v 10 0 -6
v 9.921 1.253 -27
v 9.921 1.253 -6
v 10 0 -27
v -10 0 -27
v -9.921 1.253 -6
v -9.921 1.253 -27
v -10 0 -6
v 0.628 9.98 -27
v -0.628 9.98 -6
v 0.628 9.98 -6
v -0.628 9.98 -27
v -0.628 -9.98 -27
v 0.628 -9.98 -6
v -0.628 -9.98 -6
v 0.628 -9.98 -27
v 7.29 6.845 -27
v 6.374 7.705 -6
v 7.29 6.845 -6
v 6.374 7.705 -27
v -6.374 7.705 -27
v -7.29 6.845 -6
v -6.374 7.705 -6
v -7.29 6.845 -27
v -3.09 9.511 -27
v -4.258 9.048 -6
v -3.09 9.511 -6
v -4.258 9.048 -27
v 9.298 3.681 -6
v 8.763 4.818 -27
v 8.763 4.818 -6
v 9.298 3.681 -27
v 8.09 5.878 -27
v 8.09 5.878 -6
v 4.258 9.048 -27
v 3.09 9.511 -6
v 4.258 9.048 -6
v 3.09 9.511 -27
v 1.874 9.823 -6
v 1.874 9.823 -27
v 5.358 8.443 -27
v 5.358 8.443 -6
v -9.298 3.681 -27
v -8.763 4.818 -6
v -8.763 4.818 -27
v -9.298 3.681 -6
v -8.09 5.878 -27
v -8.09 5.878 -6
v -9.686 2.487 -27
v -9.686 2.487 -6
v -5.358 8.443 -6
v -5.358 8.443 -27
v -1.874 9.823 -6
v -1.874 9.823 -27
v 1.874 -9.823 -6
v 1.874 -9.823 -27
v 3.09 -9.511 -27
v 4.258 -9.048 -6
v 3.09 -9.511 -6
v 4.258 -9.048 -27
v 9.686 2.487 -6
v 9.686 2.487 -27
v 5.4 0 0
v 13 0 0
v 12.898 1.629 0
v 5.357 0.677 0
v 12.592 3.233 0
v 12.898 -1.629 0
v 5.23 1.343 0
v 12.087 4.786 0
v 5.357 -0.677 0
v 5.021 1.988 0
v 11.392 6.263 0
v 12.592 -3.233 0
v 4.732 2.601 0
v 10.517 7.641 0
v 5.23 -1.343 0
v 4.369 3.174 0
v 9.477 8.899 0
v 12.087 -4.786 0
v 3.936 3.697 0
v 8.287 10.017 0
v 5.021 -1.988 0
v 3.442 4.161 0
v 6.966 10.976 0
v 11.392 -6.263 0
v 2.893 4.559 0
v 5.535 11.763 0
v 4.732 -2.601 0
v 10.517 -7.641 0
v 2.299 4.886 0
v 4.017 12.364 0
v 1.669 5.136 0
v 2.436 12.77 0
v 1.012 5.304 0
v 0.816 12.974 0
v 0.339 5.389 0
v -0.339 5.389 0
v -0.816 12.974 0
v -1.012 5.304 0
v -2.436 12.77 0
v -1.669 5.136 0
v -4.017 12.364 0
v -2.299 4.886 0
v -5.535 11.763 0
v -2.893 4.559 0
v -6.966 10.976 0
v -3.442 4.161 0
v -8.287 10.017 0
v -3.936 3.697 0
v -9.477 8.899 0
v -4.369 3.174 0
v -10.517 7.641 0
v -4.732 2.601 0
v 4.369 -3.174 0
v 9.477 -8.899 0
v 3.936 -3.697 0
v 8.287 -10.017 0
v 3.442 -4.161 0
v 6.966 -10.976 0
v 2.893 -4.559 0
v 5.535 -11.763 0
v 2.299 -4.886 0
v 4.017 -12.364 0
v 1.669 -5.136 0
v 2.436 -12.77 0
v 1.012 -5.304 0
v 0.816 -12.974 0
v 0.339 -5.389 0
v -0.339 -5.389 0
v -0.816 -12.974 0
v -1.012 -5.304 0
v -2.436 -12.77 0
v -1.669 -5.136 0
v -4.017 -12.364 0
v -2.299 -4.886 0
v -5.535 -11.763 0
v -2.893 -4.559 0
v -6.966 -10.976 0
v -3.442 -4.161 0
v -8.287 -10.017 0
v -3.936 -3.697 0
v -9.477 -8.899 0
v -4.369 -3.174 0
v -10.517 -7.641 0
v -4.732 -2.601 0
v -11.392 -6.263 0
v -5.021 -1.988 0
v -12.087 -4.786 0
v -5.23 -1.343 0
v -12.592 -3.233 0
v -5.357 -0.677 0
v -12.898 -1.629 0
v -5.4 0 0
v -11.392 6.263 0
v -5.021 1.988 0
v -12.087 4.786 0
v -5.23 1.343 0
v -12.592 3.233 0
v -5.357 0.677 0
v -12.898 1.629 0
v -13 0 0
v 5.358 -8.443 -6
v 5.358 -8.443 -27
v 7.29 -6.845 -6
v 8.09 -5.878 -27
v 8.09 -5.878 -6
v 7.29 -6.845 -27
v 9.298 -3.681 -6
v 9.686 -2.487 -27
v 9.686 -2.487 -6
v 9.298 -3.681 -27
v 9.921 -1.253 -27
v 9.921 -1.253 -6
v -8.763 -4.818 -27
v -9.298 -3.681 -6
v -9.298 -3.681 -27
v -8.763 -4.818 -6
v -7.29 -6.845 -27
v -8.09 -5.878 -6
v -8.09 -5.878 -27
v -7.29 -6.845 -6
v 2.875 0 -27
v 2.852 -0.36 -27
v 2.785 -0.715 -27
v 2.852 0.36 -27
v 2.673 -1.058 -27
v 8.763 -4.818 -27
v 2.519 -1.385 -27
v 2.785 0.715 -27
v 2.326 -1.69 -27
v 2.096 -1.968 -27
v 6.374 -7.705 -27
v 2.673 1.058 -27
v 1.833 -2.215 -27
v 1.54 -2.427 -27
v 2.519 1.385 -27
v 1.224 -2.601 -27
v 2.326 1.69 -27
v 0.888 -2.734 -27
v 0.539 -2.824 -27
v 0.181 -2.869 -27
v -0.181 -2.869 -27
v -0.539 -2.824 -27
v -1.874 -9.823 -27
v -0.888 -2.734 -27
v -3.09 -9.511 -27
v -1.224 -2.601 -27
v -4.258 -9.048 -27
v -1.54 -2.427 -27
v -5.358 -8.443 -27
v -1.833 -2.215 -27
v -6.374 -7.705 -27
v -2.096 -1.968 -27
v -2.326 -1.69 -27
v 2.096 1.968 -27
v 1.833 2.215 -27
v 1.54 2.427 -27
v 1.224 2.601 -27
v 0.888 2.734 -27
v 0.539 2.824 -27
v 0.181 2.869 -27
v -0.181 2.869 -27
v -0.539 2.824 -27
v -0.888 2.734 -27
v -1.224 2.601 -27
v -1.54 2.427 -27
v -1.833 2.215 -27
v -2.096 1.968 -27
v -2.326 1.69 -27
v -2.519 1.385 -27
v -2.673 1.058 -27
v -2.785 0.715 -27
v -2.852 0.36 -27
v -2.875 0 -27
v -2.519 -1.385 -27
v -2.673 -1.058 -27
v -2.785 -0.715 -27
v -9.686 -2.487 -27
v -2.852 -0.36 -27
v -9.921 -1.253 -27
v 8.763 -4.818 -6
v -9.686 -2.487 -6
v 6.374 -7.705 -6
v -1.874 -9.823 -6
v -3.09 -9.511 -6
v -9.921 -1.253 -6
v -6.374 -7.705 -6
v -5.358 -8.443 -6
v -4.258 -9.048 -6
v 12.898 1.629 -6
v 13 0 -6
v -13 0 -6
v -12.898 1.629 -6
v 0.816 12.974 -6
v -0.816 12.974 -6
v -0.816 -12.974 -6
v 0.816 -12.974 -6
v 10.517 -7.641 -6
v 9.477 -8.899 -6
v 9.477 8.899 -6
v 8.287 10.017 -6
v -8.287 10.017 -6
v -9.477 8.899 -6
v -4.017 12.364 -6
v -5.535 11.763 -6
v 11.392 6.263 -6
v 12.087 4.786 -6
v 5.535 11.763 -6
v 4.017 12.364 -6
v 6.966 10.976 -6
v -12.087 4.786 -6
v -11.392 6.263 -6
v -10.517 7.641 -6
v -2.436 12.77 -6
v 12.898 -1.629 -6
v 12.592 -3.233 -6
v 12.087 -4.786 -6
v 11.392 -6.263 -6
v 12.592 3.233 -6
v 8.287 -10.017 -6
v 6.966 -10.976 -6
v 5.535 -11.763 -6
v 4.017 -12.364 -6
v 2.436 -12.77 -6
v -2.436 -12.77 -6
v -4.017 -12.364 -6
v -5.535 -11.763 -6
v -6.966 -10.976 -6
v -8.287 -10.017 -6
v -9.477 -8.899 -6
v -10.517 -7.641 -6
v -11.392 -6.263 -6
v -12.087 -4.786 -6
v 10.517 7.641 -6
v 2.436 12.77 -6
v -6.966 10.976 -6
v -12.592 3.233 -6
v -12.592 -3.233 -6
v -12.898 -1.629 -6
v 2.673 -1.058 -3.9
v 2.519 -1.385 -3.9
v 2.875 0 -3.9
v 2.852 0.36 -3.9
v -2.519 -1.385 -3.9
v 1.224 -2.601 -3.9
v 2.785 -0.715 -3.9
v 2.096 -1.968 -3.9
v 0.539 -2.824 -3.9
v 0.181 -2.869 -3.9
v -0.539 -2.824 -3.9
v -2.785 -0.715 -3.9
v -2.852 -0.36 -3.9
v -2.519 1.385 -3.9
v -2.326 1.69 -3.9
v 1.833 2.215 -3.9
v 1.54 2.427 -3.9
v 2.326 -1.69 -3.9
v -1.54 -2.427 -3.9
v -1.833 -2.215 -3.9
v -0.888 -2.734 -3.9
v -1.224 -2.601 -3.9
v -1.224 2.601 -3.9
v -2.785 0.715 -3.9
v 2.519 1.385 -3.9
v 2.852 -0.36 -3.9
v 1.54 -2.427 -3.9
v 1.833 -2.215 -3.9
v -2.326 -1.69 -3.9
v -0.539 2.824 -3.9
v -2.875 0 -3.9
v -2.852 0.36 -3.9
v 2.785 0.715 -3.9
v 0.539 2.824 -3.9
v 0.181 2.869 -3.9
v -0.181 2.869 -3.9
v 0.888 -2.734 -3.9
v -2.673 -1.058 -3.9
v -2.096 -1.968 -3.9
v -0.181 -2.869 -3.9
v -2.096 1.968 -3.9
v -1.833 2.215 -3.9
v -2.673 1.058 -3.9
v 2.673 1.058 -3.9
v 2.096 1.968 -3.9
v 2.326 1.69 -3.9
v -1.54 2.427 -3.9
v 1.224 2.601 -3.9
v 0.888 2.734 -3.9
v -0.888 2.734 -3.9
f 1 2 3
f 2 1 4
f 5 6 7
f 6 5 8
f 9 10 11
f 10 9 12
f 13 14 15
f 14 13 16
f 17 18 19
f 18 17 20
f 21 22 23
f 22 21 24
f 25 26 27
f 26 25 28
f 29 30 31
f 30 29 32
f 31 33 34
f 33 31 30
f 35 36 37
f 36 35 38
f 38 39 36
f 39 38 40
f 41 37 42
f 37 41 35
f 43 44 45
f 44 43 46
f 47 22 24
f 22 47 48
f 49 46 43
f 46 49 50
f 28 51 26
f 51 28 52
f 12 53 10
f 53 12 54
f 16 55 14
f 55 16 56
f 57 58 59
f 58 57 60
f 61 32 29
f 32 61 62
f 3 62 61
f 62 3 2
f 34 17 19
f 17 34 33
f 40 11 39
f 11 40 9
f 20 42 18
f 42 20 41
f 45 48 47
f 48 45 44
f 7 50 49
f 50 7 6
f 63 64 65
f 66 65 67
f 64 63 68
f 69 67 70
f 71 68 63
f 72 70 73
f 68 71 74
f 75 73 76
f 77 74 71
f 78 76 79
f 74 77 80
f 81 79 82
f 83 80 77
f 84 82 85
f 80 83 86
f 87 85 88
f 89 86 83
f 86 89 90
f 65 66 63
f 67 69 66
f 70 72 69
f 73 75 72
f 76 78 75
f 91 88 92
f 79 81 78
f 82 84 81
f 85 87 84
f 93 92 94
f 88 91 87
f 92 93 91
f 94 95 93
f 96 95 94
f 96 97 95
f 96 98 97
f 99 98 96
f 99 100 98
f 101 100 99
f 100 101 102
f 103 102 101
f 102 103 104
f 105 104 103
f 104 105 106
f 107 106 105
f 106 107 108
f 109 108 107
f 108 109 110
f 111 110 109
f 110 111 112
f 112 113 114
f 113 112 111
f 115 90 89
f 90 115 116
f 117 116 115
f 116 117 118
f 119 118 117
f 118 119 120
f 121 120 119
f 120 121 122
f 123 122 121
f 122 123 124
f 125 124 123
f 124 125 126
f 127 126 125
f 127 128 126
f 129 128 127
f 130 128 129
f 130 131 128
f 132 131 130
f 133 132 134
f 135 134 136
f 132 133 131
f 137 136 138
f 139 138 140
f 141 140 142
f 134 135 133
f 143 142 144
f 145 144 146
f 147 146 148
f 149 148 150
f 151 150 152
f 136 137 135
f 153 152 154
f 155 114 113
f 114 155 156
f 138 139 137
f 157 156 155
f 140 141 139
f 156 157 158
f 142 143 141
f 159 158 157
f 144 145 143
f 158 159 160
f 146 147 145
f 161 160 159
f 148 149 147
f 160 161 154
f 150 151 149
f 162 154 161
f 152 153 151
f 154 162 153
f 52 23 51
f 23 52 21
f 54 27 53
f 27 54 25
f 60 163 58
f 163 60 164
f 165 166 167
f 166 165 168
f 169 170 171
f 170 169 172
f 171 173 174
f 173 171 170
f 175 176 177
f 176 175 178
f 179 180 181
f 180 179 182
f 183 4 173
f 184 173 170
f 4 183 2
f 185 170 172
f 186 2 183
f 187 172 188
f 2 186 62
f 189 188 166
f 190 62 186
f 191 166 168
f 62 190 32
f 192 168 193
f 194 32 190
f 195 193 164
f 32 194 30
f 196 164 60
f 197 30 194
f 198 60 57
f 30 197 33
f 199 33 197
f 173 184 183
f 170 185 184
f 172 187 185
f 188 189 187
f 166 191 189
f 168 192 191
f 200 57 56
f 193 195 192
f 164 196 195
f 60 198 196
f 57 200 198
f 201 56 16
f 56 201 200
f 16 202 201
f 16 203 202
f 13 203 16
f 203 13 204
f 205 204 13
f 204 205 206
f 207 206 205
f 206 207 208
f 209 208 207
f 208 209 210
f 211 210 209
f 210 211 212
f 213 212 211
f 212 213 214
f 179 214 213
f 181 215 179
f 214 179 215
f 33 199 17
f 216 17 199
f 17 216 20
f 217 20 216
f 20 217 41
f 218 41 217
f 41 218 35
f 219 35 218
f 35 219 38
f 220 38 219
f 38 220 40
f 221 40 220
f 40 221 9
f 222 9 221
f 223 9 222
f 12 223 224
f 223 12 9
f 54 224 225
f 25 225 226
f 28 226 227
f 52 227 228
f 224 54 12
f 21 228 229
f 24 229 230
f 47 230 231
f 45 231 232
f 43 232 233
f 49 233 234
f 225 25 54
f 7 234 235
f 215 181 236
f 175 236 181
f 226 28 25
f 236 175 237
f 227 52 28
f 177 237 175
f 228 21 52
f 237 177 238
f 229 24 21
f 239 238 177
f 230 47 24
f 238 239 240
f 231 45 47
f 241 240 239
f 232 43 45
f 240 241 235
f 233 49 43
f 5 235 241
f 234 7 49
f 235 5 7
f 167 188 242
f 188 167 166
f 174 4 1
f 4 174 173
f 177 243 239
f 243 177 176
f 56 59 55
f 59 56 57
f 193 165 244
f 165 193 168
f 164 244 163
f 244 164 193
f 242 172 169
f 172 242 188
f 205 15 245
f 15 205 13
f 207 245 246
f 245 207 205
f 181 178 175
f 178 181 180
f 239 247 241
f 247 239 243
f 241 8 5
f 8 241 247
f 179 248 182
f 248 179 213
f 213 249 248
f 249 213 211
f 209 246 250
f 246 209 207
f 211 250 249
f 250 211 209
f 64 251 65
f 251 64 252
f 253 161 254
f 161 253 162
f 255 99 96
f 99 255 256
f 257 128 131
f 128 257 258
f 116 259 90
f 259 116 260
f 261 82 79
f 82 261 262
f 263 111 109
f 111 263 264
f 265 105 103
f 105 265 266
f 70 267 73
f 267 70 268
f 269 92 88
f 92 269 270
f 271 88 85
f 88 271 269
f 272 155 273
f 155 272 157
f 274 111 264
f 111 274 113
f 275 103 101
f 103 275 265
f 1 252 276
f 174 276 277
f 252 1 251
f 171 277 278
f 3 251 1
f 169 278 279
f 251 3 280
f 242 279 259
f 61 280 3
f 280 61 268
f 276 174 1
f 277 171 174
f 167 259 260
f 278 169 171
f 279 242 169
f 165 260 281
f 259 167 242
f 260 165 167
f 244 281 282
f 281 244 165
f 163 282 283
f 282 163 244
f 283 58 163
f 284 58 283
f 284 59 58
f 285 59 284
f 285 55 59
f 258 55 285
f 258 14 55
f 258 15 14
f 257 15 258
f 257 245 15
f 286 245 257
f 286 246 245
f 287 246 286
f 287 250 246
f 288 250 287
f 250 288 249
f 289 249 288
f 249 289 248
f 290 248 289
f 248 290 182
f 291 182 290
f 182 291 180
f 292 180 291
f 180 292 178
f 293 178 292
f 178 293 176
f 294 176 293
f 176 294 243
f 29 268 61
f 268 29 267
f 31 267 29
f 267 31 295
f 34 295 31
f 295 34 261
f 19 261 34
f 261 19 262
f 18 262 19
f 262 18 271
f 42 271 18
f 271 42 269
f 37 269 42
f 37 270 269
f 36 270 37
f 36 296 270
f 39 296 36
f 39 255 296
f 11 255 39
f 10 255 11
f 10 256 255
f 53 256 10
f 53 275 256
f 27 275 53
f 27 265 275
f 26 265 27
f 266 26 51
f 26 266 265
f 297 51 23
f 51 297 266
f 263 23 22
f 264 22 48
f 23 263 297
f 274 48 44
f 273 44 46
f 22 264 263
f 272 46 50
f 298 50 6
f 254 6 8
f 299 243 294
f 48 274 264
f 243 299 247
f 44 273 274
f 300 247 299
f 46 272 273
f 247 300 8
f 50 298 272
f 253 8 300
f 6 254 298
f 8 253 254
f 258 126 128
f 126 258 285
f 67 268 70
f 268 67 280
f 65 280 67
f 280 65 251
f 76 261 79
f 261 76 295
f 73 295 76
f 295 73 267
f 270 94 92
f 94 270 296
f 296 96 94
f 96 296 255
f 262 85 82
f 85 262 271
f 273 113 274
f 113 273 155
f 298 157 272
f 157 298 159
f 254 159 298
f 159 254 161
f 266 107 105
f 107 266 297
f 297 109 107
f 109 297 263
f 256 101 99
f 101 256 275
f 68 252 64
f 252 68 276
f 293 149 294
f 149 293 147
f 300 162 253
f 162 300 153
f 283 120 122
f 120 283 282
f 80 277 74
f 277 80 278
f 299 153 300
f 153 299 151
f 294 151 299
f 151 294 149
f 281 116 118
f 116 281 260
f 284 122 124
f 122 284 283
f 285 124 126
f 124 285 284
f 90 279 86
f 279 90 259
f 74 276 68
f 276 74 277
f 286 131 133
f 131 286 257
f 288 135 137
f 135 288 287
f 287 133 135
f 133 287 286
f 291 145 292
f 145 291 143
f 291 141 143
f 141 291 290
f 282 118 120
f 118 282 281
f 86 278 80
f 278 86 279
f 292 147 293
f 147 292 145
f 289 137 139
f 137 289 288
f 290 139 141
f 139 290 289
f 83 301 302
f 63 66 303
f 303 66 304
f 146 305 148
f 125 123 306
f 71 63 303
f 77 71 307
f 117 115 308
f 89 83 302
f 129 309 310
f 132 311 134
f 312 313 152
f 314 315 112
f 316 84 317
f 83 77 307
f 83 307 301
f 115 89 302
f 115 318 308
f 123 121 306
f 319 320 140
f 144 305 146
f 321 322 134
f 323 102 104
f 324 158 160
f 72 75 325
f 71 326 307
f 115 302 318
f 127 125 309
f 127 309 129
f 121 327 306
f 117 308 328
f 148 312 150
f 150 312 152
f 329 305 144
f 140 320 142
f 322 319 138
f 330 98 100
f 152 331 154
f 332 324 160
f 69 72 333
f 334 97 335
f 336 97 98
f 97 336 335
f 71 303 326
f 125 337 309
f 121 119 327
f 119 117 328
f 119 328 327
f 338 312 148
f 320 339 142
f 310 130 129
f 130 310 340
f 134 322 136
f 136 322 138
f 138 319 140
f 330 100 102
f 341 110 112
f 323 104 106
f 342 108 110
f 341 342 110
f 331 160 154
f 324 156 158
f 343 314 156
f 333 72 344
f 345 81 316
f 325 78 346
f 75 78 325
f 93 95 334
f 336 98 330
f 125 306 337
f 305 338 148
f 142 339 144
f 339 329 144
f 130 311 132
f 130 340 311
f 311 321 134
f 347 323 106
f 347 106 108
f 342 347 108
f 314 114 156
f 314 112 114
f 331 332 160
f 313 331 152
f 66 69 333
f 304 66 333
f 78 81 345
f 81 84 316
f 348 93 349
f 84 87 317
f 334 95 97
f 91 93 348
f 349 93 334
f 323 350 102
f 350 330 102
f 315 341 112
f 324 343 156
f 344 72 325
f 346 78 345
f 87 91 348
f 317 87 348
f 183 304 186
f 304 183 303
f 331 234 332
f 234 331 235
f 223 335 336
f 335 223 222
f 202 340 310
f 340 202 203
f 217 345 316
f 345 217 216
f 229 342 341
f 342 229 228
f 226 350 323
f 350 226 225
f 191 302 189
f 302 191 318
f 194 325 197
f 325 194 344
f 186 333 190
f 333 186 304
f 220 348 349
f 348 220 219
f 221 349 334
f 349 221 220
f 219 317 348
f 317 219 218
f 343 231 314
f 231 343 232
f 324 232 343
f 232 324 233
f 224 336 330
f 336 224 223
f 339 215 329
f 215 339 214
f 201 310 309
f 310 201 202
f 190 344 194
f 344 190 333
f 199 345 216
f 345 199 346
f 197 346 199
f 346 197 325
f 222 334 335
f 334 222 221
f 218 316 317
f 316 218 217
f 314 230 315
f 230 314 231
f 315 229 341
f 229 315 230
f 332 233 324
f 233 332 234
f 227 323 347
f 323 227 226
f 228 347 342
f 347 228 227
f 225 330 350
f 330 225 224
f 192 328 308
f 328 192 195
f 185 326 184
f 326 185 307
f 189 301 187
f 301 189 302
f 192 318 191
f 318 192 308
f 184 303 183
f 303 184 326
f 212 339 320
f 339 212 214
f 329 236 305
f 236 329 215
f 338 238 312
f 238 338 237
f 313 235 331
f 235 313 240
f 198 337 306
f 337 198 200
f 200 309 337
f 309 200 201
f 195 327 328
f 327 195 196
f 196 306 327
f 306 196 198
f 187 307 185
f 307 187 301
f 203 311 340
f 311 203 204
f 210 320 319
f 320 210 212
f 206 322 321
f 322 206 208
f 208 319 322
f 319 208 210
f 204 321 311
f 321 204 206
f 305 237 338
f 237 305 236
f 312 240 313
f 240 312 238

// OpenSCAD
$fn = 50;


difference() {
	union() {
		translate(v = [0, 0, -27.0000000000]) {
			cylinder(h = 27, r = 10.0000000000);
		}
		translate(v = [0, 0, -6.0000000000]) {
			cylinder(h = 6, r = 13.0000000000);
		}
	}
	union() {
		translate(v = [0, 0, 0]) {
			rotate(a = [0, 0, 0]) {
				difference() {
					union() {
						#translate(v = [0, 0, -27.0000000000]) {
							cylinder(h = 27, r = 2.6000000000);
						}
						#translate(v = [0, 0, -3.9000000000]) {
							cylinder(h = 3.9000000000, r = 10.0000000000, r1 = 2.8750000000, r2 = 5.4000000000);
						}
						#translate(v = [0, 0, -27.0000000000]) {
							cylinder(h = 27, r = 2.8750000000);
						}
						#translate(v = [0, 0, -27.0000000000]) {
							cylinder(h = 27, r = 2.6000000000);
						}
					}
					union();
				}
			}
		}
	}
}
